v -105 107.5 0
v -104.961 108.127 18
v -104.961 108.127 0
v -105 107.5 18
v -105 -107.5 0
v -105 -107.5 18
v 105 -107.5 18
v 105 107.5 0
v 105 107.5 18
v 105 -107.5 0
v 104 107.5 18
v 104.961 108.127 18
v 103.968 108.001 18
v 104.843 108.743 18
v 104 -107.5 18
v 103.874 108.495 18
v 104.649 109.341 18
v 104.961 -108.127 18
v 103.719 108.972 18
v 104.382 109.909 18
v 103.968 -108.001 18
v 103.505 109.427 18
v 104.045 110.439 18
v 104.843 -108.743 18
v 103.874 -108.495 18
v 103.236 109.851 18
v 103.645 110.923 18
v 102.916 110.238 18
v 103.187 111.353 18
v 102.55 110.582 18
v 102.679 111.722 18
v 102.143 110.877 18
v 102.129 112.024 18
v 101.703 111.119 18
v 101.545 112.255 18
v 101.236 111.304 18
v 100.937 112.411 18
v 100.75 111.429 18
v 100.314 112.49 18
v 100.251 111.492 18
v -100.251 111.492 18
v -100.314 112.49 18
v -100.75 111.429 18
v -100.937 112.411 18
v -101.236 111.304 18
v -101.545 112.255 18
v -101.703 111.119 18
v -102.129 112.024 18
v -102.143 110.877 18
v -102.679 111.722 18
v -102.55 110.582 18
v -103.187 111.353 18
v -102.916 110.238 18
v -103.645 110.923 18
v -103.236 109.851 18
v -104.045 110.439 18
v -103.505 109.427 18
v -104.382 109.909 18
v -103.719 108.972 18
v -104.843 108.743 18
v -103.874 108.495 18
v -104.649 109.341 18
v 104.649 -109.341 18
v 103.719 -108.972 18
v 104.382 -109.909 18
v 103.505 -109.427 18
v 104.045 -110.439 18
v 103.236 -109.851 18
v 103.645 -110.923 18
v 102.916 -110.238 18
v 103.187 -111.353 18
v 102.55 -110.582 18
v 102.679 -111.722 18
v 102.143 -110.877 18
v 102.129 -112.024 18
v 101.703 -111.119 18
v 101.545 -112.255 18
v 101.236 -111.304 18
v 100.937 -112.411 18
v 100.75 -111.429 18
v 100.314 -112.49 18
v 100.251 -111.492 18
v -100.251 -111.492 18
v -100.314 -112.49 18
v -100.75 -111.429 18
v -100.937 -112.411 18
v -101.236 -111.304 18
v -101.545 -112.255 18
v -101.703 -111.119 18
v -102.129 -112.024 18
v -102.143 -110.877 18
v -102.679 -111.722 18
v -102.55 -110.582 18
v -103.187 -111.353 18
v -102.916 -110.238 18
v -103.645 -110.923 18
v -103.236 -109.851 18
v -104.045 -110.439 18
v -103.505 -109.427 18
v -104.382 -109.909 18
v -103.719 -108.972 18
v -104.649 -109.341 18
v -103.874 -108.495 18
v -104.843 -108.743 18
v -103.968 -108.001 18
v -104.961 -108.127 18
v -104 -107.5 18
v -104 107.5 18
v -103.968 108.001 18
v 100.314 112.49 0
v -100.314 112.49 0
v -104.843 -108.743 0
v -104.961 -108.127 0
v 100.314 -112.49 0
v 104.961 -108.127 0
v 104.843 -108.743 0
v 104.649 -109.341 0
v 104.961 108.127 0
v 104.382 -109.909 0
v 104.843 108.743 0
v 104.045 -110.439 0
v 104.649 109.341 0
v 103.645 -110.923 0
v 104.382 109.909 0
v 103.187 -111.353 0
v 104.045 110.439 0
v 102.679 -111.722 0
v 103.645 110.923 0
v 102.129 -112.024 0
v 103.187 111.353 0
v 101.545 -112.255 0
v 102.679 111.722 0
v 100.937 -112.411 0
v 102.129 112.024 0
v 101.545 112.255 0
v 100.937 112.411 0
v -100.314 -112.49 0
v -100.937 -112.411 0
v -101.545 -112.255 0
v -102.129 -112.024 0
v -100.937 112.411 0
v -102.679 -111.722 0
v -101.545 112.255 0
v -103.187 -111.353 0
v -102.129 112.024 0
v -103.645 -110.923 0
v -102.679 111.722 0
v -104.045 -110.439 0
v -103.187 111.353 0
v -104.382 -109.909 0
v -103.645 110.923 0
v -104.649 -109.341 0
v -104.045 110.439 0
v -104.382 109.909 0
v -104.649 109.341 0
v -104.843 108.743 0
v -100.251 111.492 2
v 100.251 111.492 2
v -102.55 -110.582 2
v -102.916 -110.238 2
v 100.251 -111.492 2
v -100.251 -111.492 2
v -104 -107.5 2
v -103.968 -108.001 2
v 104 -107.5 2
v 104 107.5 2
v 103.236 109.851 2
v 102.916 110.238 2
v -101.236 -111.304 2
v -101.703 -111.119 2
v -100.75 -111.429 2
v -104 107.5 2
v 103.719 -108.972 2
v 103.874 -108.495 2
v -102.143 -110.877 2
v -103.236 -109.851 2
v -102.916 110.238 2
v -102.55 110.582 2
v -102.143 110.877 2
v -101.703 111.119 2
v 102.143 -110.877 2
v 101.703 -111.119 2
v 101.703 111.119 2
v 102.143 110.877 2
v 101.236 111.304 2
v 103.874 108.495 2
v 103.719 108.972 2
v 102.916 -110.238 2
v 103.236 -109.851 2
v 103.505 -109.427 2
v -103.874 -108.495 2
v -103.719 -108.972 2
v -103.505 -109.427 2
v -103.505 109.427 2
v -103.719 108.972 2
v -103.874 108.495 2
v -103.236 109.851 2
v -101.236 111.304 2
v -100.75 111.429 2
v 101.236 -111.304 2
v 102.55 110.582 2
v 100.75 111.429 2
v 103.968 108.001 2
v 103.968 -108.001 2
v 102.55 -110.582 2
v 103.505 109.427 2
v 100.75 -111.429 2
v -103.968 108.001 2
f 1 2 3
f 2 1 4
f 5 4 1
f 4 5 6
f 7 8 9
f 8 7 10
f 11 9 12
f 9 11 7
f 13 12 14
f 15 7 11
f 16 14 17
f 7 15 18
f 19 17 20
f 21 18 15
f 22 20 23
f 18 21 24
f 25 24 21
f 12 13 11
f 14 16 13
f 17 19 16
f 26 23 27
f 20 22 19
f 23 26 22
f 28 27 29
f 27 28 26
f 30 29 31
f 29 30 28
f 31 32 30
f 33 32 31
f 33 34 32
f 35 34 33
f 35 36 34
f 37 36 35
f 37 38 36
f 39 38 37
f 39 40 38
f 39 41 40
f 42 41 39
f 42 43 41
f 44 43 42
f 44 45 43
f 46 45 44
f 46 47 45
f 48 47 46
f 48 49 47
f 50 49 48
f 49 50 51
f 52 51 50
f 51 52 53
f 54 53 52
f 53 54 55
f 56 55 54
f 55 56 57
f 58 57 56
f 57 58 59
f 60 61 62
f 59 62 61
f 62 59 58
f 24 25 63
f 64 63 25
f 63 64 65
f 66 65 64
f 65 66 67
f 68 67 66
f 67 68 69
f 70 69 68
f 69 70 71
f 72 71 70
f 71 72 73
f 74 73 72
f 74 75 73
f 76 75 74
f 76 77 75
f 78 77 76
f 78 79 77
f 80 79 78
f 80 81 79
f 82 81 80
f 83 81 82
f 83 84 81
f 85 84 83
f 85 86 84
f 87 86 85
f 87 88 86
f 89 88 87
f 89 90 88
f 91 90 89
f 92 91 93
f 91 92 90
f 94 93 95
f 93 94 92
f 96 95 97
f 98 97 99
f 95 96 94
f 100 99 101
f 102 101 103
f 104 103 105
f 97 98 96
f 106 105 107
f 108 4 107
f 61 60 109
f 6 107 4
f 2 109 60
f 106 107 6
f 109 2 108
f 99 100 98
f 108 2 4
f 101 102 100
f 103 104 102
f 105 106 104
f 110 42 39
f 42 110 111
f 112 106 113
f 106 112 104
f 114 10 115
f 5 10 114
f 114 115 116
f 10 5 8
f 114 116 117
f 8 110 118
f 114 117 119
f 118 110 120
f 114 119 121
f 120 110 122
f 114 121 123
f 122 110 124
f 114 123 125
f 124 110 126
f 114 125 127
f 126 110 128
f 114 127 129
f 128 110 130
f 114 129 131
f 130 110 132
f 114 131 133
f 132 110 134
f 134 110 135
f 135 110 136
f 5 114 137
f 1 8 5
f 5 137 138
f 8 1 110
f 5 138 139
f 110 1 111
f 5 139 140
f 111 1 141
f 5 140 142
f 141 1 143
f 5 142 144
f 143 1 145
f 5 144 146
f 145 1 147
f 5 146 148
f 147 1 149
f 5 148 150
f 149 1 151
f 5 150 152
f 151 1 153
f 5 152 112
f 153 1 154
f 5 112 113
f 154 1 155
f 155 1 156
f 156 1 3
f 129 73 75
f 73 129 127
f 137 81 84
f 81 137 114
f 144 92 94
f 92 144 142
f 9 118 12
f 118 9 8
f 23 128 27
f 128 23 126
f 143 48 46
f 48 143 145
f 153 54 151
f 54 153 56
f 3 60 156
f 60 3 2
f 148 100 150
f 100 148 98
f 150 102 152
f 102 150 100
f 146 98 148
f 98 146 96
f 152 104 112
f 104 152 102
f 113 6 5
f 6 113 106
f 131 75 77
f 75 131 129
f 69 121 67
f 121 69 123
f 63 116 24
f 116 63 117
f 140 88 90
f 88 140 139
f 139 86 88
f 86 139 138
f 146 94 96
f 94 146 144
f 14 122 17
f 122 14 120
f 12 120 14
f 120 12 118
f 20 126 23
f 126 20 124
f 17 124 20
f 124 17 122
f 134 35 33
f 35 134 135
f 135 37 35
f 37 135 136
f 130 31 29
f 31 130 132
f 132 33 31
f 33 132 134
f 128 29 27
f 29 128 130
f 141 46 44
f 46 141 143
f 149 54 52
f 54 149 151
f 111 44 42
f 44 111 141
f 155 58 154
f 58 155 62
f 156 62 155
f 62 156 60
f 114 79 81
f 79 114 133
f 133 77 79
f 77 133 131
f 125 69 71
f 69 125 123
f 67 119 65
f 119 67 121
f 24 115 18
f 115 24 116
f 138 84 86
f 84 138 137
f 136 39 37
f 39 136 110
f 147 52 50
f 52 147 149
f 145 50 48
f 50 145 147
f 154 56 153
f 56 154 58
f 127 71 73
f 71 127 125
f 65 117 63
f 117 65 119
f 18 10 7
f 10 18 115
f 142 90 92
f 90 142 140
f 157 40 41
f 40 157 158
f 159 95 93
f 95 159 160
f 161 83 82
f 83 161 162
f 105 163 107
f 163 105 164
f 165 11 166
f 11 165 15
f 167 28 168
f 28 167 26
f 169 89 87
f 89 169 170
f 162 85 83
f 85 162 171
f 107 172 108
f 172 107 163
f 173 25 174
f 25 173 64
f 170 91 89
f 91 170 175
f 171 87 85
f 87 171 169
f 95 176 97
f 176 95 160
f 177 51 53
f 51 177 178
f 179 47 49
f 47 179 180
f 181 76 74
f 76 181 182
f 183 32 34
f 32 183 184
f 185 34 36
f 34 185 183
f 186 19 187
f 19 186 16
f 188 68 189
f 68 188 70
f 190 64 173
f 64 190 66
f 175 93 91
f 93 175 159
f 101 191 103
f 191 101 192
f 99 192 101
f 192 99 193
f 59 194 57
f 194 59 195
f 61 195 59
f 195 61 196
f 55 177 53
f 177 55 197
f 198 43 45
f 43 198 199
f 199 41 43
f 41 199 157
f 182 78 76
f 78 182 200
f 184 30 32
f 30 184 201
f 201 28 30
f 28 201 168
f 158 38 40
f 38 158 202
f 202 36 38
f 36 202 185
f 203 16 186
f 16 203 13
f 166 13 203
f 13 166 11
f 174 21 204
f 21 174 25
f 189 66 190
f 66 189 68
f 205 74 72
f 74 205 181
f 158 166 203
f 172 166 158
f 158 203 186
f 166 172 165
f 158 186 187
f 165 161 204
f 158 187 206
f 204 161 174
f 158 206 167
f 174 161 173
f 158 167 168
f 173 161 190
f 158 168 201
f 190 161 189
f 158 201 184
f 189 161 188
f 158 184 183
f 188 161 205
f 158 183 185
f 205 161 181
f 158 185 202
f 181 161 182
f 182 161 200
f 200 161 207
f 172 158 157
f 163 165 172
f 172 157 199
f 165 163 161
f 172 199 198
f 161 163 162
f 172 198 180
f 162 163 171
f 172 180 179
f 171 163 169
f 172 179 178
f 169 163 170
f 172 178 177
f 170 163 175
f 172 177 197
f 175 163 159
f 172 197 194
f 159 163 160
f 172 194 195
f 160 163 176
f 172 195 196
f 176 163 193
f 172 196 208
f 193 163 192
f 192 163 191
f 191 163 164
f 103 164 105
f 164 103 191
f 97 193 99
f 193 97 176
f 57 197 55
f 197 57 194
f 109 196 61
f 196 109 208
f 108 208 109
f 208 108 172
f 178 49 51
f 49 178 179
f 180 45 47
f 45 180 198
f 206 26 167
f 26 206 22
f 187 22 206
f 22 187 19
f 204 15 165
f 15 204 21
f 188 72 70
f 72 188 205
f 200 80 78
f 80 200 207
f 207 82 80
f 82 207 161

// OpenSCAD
$fn = 50;


difference() {
	union() {
		hull() {
			translate(v = [-100.0000000000, 107.5000000000, 0]) {
				cylinder(h = 18, r = 5);
			}
			translate(v = [100.0000000000, 107.5000000000, 0]) {
				cylinder(h = 18, r = 5);
			}
			translate(v = [-100.0000000000, -107.5000000000, 0]) {
				cylinder(h = 18, r = 5);
			}
			translate(v = [100.0000000000, -107.5000000000, 0]) {
				cylinder(h = 18, r = 5);
			}
		}
	}
	union() {
		translate(v = [0, 0, 2]) {
			hull() {
				translate(v = [-100.0000000000, 107.5000000000, 0]) {
					cylinder(h = 16, r = 4);
				}
				translate(v = [100.0000000000, 107.5000000000, 0]) {
					cylinder(h = 16, r = 4);
				}
				translate(v = [-100.0000000000, -107.5000000000, 0]) {
					cylinder(h = 16, r = 4);
				}
				translate(v = [100.0000000000, -107.5000000000, 0]) {
					cylinder(h = 16, r = 4);
				}
			}
		}
	}
}
